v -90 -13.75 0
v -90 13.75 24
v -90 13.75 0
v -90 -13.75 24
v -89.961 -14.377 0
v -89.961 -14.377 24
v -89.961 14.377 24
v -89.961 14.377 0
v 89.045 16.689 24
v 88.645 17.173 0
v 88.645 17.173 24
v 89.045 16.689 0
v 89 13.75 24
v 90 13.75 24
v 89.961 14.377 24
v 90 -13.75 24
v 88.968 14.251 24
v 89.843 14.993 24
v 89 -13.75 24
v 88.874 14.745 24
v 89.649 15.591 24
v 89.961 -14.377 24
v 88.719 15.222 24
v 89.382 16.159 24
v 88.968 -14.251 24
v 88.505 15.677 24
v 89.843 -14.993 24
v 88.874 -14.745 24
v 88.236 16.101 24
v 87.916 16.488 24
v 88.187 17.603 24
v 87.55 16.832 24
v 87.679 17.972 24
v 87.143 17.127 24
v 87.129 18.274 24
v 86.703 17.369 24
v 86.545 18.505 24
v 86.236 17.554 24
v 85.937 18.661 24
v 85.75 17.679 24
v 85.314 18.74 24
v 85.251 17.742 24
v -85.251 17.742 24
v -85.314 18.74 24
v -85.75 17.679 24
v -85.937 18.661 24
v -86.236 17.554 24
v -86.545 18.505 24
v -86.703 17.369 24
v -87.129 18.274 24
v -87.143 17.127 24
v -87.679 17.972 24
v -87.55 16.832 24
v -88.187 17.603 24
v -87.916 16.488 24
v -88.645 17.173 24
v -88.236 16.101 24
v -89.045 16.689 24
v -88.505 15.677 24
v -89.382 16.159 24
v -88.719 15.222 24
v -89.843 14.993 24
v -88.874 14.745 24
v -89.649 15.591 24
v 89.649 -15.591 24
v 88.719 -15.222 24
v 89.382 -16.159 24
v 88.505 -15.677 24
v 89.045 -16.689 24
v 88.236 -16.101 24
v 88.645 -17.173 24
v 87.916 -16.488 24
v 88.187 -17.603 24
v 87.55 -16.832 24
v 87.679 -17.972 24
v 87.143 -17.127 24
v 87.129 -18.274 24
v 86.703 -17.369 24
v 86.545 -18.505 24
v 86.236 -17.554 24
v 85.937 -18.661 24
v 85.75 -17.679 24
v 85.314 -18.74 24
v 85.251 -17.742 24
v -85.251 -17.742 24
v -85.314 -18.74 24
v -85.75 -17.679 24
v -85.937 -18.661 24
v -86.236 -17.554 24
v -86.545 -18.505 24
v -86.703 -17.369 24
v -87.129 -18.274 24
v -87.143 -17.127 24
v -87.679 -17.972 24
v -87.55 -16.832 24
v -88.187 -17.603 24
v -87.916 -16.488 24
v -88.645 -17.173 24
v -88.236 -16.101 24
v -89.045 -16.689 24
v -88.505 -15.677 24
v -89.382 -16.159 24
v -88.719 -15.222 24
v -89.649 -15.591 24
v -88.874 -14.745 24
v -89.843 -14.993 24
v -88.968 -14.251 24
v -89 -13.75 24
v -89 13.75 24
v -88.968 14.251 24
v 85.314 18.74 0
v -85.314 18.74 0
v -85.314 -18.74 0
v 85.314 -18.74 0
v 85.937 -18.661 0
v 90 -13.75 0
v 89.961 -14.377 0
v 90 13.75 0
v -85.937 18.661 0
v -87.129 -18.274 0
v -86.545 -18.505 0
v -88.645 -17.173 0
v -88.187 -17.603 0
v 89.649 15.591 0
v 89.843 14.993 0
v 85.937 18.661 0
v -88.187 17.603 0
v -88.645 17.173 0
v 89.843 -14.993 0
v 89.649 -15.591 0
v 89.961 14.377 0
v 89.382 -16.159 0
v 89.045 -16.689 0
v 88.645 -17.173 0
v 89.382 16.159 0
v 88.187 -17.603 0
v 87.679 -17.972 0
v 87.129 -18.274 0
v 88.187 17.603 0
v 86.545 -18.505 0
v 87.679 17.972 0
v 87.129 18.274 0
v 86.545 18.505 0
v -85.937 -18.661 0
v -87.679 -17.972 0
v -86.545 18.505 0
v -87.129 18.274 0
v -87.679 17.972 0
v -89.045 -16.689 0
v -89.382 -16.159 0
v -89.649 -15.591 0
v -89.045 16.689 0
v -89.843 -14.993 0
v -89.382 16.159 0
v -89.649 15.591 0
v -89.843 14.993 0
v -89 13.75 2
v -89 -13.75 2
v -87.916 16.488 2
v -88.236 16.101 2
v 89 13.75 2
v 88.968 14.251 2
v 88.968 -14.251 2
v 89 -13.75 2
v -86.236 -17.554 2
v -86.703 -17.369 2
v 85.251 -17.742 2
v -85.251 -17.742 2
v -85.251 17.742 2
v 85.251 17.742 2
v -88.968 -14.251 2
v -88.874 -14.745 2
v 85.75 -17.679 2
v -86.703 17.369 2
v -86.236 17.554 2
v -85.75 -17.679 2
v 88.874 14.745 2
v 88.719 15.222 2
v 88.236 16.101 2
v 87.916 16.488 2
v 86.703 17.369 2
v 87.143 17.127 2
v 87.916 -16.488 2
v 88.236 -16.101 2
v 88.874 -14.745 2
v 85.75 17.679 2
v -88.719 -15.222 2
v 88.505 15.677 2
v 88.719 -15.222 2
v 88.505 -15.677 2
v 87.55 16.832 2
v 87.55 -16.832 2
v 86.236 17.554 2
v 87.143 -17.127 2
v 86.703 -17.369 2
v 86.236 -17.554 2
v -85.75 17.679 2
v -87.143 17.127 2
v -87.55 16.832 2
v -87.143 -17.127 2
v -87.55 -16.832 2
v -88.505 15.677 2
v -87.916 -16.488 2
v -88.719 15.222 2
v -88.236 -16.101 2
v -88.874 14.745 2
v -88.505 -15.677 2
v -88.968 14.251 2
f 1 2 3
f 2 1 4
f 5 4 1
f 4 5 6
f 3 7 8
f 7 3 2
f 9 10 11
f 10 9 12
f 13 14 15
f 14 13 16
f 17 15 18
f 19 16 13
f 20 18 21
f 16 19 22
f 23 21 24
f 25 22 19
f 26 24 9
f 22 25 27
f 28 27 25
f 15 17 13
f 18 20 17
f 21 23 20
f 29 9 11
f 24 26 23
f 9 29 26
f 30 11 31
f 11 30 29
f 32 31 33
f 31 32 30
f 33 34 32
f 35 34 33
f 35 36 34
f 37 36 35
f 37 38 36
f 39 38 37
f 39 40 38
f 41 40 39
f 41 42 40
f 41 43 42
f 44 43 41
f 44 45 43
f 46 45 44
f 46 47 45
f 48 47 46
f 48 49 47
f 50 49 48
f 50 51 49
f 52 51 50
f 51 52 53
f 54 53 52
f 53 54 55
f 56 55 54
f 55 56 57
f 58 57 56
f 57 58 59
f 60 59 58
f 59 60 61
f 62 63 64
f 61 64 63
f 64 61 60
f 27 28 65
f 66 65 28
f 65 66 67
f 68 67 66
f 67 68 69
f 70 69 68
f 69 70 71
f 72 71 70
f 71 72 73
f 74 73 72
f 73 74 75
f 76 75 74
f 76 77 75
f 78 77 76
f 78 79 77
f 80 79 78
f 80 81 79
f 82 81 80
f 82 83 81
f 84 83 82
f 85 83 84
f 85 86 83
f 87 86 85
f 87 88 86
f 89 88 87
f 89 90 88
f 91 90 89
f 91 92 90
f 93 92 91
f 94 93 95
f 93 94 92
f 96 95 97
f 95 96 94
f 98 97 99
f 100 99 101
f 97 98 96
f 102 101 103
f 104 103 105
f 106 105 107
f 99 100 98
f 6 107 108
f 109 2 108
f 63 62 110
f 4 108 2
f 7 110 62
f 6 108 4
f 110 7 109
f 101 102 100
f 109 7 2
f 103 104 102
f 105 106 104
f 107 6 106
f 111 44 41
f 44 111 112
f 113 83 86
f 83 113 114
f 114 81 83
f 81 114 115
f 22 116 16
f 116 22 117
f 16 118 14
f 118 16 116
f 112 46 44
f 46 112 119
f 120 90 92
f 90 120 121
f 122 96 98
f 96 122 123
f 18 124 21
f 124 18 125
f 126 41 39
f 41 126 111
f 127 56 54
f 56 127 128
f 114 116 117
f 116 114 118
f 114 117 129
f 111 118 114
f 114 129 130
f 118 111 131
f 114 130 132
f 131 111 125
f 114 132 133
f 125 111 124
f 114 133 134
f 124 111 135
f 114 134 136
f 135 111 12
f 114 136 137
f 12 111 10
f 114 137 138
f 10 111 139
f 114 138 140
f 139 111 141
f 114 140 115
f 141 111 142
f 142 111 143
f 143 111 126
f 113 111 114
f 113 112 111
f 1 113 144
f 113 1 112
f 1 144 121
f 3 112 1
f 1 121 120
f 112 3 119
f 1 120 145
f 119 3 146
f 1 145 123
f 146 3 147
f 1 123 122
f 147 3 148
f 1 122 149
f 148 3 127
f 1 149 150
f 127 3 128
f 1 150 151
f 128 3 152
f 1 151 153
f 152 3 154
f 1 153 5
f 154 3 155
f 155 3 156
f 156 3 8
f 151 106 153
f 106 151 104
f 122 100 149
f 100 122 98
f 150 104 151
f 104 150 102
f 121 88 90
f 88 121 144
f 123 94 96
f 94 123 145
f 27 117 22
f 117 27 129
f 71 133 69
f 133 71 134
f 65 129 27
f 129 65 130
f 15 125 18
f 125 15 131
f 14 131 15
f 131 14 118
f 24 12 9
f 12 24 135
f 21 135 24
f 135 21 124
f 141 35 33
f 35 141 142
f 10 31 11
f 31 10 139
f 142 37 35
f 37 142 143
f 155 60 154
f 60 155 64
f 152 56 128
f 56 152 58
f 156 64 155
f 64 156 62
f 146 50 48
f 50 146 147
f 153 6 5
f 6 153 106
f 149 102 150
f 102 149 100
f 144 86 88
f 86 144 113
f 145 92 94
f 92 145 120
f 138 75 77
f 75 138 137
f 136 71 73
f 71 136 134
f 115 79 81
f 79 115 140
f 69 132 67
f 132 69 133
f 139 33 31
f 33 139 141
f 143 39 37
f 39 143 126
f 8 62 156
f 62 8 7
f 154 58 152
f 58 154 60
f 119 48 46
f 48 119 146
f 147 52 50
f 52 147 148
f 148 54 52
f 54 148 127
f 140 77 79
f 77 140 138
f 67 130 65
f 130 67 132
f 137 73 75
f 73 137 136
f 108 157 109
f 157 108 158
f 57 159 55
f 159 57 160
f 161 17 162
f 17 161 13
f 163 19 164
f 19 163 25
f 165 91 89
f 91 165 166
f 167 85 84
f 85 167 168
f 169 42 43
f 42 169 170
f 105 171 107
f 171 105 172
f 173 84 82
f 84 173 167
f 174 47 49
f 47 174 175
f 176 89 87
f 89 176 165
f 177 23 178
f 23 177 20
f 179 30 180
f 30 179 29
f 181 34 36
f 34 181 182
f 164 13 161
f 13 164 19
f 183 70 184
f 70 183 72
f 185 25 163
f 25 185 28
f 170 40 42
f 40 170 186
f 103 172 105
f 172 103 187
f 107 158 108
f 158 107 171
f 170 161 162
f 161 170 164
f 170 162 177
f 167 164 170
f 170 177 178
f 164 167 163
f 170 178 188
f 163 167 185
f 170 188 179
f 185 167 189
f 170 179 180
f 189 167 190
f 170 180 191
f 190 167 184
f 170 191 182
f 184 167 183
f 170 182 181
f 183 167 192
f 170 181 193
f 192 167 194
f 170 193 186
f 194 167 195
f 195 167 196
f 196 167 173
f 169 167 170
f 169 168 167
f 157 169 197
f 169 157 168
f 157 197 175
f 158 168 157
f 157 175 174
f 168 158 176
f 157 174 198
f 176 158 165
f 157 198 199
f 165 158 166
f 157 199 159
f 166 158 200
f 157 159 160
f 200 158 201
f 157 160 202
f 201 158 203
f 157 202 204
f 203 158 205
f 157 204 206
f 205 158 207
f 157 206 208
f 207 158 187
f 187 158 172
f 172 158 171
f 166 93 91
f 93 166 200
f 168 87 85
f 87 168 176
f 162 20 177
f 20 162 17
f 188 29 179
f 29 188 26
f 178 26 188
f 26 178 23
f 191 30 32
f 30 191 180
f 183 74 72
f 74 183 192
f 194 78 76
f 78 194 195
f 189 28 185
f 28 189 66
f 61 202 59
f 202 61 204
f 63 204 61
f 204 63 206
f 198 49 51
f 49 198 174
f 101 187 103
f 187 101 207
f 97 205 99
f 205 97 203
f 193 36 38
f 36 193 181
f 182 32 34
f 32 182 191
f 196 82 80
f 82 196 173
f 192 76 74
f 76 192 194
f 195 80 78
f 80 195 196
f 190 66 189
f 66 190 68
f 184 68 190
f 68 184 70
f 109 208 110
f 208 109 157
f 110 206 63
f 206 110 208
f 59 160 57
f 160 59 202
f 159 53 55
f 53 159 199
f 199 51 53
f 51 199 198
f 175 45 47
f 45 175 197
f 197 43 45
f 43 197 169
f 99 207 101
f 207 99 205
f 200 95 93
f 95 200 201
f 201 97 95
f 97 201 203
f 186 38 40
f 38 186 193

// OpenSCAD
$fn = 50;


difference() {
	union() {
		hull() {
			translate(v = [-85.0000000000, 13.7500000000, 0]) {
				cylinder(h = 24, r = 5);
			}
			translate(v = [85.0000000000, 13.7500000000, 0]) {
				cylinder(h = 24, r = 5);
			}
			translate(v = [-85.0000000000, -13.7500000000, 0]) {
				cylinder(h = 24, r = 5);
			}
			translate(v = [85.0000000000, -13.7500000000, 0]) {
				cylinder(h = 24, r = 5);
			}
		}
	}
	union() {
		translate(v = [0, 0, 2]) {
			hull() {
				translate(v = [-85.0000000000, 13.7500000000, 0]) {
					cylinder(h = 22, r = 4);
				}
				translate(v = [85.0000000000, 13.7500000000, 0]) {
					cylinder(h = 22, r = 4);
				}
				translate(v = [-85.0000000000, -13.7500000000, 0]) {
					cylinder(h = 22, r = 4);
				}
				translate(v = [85.0000000000, -13.7500000000, 0]) {
					cylinder(h = 22, r = 4);
				}
			}
		}
	}
}
